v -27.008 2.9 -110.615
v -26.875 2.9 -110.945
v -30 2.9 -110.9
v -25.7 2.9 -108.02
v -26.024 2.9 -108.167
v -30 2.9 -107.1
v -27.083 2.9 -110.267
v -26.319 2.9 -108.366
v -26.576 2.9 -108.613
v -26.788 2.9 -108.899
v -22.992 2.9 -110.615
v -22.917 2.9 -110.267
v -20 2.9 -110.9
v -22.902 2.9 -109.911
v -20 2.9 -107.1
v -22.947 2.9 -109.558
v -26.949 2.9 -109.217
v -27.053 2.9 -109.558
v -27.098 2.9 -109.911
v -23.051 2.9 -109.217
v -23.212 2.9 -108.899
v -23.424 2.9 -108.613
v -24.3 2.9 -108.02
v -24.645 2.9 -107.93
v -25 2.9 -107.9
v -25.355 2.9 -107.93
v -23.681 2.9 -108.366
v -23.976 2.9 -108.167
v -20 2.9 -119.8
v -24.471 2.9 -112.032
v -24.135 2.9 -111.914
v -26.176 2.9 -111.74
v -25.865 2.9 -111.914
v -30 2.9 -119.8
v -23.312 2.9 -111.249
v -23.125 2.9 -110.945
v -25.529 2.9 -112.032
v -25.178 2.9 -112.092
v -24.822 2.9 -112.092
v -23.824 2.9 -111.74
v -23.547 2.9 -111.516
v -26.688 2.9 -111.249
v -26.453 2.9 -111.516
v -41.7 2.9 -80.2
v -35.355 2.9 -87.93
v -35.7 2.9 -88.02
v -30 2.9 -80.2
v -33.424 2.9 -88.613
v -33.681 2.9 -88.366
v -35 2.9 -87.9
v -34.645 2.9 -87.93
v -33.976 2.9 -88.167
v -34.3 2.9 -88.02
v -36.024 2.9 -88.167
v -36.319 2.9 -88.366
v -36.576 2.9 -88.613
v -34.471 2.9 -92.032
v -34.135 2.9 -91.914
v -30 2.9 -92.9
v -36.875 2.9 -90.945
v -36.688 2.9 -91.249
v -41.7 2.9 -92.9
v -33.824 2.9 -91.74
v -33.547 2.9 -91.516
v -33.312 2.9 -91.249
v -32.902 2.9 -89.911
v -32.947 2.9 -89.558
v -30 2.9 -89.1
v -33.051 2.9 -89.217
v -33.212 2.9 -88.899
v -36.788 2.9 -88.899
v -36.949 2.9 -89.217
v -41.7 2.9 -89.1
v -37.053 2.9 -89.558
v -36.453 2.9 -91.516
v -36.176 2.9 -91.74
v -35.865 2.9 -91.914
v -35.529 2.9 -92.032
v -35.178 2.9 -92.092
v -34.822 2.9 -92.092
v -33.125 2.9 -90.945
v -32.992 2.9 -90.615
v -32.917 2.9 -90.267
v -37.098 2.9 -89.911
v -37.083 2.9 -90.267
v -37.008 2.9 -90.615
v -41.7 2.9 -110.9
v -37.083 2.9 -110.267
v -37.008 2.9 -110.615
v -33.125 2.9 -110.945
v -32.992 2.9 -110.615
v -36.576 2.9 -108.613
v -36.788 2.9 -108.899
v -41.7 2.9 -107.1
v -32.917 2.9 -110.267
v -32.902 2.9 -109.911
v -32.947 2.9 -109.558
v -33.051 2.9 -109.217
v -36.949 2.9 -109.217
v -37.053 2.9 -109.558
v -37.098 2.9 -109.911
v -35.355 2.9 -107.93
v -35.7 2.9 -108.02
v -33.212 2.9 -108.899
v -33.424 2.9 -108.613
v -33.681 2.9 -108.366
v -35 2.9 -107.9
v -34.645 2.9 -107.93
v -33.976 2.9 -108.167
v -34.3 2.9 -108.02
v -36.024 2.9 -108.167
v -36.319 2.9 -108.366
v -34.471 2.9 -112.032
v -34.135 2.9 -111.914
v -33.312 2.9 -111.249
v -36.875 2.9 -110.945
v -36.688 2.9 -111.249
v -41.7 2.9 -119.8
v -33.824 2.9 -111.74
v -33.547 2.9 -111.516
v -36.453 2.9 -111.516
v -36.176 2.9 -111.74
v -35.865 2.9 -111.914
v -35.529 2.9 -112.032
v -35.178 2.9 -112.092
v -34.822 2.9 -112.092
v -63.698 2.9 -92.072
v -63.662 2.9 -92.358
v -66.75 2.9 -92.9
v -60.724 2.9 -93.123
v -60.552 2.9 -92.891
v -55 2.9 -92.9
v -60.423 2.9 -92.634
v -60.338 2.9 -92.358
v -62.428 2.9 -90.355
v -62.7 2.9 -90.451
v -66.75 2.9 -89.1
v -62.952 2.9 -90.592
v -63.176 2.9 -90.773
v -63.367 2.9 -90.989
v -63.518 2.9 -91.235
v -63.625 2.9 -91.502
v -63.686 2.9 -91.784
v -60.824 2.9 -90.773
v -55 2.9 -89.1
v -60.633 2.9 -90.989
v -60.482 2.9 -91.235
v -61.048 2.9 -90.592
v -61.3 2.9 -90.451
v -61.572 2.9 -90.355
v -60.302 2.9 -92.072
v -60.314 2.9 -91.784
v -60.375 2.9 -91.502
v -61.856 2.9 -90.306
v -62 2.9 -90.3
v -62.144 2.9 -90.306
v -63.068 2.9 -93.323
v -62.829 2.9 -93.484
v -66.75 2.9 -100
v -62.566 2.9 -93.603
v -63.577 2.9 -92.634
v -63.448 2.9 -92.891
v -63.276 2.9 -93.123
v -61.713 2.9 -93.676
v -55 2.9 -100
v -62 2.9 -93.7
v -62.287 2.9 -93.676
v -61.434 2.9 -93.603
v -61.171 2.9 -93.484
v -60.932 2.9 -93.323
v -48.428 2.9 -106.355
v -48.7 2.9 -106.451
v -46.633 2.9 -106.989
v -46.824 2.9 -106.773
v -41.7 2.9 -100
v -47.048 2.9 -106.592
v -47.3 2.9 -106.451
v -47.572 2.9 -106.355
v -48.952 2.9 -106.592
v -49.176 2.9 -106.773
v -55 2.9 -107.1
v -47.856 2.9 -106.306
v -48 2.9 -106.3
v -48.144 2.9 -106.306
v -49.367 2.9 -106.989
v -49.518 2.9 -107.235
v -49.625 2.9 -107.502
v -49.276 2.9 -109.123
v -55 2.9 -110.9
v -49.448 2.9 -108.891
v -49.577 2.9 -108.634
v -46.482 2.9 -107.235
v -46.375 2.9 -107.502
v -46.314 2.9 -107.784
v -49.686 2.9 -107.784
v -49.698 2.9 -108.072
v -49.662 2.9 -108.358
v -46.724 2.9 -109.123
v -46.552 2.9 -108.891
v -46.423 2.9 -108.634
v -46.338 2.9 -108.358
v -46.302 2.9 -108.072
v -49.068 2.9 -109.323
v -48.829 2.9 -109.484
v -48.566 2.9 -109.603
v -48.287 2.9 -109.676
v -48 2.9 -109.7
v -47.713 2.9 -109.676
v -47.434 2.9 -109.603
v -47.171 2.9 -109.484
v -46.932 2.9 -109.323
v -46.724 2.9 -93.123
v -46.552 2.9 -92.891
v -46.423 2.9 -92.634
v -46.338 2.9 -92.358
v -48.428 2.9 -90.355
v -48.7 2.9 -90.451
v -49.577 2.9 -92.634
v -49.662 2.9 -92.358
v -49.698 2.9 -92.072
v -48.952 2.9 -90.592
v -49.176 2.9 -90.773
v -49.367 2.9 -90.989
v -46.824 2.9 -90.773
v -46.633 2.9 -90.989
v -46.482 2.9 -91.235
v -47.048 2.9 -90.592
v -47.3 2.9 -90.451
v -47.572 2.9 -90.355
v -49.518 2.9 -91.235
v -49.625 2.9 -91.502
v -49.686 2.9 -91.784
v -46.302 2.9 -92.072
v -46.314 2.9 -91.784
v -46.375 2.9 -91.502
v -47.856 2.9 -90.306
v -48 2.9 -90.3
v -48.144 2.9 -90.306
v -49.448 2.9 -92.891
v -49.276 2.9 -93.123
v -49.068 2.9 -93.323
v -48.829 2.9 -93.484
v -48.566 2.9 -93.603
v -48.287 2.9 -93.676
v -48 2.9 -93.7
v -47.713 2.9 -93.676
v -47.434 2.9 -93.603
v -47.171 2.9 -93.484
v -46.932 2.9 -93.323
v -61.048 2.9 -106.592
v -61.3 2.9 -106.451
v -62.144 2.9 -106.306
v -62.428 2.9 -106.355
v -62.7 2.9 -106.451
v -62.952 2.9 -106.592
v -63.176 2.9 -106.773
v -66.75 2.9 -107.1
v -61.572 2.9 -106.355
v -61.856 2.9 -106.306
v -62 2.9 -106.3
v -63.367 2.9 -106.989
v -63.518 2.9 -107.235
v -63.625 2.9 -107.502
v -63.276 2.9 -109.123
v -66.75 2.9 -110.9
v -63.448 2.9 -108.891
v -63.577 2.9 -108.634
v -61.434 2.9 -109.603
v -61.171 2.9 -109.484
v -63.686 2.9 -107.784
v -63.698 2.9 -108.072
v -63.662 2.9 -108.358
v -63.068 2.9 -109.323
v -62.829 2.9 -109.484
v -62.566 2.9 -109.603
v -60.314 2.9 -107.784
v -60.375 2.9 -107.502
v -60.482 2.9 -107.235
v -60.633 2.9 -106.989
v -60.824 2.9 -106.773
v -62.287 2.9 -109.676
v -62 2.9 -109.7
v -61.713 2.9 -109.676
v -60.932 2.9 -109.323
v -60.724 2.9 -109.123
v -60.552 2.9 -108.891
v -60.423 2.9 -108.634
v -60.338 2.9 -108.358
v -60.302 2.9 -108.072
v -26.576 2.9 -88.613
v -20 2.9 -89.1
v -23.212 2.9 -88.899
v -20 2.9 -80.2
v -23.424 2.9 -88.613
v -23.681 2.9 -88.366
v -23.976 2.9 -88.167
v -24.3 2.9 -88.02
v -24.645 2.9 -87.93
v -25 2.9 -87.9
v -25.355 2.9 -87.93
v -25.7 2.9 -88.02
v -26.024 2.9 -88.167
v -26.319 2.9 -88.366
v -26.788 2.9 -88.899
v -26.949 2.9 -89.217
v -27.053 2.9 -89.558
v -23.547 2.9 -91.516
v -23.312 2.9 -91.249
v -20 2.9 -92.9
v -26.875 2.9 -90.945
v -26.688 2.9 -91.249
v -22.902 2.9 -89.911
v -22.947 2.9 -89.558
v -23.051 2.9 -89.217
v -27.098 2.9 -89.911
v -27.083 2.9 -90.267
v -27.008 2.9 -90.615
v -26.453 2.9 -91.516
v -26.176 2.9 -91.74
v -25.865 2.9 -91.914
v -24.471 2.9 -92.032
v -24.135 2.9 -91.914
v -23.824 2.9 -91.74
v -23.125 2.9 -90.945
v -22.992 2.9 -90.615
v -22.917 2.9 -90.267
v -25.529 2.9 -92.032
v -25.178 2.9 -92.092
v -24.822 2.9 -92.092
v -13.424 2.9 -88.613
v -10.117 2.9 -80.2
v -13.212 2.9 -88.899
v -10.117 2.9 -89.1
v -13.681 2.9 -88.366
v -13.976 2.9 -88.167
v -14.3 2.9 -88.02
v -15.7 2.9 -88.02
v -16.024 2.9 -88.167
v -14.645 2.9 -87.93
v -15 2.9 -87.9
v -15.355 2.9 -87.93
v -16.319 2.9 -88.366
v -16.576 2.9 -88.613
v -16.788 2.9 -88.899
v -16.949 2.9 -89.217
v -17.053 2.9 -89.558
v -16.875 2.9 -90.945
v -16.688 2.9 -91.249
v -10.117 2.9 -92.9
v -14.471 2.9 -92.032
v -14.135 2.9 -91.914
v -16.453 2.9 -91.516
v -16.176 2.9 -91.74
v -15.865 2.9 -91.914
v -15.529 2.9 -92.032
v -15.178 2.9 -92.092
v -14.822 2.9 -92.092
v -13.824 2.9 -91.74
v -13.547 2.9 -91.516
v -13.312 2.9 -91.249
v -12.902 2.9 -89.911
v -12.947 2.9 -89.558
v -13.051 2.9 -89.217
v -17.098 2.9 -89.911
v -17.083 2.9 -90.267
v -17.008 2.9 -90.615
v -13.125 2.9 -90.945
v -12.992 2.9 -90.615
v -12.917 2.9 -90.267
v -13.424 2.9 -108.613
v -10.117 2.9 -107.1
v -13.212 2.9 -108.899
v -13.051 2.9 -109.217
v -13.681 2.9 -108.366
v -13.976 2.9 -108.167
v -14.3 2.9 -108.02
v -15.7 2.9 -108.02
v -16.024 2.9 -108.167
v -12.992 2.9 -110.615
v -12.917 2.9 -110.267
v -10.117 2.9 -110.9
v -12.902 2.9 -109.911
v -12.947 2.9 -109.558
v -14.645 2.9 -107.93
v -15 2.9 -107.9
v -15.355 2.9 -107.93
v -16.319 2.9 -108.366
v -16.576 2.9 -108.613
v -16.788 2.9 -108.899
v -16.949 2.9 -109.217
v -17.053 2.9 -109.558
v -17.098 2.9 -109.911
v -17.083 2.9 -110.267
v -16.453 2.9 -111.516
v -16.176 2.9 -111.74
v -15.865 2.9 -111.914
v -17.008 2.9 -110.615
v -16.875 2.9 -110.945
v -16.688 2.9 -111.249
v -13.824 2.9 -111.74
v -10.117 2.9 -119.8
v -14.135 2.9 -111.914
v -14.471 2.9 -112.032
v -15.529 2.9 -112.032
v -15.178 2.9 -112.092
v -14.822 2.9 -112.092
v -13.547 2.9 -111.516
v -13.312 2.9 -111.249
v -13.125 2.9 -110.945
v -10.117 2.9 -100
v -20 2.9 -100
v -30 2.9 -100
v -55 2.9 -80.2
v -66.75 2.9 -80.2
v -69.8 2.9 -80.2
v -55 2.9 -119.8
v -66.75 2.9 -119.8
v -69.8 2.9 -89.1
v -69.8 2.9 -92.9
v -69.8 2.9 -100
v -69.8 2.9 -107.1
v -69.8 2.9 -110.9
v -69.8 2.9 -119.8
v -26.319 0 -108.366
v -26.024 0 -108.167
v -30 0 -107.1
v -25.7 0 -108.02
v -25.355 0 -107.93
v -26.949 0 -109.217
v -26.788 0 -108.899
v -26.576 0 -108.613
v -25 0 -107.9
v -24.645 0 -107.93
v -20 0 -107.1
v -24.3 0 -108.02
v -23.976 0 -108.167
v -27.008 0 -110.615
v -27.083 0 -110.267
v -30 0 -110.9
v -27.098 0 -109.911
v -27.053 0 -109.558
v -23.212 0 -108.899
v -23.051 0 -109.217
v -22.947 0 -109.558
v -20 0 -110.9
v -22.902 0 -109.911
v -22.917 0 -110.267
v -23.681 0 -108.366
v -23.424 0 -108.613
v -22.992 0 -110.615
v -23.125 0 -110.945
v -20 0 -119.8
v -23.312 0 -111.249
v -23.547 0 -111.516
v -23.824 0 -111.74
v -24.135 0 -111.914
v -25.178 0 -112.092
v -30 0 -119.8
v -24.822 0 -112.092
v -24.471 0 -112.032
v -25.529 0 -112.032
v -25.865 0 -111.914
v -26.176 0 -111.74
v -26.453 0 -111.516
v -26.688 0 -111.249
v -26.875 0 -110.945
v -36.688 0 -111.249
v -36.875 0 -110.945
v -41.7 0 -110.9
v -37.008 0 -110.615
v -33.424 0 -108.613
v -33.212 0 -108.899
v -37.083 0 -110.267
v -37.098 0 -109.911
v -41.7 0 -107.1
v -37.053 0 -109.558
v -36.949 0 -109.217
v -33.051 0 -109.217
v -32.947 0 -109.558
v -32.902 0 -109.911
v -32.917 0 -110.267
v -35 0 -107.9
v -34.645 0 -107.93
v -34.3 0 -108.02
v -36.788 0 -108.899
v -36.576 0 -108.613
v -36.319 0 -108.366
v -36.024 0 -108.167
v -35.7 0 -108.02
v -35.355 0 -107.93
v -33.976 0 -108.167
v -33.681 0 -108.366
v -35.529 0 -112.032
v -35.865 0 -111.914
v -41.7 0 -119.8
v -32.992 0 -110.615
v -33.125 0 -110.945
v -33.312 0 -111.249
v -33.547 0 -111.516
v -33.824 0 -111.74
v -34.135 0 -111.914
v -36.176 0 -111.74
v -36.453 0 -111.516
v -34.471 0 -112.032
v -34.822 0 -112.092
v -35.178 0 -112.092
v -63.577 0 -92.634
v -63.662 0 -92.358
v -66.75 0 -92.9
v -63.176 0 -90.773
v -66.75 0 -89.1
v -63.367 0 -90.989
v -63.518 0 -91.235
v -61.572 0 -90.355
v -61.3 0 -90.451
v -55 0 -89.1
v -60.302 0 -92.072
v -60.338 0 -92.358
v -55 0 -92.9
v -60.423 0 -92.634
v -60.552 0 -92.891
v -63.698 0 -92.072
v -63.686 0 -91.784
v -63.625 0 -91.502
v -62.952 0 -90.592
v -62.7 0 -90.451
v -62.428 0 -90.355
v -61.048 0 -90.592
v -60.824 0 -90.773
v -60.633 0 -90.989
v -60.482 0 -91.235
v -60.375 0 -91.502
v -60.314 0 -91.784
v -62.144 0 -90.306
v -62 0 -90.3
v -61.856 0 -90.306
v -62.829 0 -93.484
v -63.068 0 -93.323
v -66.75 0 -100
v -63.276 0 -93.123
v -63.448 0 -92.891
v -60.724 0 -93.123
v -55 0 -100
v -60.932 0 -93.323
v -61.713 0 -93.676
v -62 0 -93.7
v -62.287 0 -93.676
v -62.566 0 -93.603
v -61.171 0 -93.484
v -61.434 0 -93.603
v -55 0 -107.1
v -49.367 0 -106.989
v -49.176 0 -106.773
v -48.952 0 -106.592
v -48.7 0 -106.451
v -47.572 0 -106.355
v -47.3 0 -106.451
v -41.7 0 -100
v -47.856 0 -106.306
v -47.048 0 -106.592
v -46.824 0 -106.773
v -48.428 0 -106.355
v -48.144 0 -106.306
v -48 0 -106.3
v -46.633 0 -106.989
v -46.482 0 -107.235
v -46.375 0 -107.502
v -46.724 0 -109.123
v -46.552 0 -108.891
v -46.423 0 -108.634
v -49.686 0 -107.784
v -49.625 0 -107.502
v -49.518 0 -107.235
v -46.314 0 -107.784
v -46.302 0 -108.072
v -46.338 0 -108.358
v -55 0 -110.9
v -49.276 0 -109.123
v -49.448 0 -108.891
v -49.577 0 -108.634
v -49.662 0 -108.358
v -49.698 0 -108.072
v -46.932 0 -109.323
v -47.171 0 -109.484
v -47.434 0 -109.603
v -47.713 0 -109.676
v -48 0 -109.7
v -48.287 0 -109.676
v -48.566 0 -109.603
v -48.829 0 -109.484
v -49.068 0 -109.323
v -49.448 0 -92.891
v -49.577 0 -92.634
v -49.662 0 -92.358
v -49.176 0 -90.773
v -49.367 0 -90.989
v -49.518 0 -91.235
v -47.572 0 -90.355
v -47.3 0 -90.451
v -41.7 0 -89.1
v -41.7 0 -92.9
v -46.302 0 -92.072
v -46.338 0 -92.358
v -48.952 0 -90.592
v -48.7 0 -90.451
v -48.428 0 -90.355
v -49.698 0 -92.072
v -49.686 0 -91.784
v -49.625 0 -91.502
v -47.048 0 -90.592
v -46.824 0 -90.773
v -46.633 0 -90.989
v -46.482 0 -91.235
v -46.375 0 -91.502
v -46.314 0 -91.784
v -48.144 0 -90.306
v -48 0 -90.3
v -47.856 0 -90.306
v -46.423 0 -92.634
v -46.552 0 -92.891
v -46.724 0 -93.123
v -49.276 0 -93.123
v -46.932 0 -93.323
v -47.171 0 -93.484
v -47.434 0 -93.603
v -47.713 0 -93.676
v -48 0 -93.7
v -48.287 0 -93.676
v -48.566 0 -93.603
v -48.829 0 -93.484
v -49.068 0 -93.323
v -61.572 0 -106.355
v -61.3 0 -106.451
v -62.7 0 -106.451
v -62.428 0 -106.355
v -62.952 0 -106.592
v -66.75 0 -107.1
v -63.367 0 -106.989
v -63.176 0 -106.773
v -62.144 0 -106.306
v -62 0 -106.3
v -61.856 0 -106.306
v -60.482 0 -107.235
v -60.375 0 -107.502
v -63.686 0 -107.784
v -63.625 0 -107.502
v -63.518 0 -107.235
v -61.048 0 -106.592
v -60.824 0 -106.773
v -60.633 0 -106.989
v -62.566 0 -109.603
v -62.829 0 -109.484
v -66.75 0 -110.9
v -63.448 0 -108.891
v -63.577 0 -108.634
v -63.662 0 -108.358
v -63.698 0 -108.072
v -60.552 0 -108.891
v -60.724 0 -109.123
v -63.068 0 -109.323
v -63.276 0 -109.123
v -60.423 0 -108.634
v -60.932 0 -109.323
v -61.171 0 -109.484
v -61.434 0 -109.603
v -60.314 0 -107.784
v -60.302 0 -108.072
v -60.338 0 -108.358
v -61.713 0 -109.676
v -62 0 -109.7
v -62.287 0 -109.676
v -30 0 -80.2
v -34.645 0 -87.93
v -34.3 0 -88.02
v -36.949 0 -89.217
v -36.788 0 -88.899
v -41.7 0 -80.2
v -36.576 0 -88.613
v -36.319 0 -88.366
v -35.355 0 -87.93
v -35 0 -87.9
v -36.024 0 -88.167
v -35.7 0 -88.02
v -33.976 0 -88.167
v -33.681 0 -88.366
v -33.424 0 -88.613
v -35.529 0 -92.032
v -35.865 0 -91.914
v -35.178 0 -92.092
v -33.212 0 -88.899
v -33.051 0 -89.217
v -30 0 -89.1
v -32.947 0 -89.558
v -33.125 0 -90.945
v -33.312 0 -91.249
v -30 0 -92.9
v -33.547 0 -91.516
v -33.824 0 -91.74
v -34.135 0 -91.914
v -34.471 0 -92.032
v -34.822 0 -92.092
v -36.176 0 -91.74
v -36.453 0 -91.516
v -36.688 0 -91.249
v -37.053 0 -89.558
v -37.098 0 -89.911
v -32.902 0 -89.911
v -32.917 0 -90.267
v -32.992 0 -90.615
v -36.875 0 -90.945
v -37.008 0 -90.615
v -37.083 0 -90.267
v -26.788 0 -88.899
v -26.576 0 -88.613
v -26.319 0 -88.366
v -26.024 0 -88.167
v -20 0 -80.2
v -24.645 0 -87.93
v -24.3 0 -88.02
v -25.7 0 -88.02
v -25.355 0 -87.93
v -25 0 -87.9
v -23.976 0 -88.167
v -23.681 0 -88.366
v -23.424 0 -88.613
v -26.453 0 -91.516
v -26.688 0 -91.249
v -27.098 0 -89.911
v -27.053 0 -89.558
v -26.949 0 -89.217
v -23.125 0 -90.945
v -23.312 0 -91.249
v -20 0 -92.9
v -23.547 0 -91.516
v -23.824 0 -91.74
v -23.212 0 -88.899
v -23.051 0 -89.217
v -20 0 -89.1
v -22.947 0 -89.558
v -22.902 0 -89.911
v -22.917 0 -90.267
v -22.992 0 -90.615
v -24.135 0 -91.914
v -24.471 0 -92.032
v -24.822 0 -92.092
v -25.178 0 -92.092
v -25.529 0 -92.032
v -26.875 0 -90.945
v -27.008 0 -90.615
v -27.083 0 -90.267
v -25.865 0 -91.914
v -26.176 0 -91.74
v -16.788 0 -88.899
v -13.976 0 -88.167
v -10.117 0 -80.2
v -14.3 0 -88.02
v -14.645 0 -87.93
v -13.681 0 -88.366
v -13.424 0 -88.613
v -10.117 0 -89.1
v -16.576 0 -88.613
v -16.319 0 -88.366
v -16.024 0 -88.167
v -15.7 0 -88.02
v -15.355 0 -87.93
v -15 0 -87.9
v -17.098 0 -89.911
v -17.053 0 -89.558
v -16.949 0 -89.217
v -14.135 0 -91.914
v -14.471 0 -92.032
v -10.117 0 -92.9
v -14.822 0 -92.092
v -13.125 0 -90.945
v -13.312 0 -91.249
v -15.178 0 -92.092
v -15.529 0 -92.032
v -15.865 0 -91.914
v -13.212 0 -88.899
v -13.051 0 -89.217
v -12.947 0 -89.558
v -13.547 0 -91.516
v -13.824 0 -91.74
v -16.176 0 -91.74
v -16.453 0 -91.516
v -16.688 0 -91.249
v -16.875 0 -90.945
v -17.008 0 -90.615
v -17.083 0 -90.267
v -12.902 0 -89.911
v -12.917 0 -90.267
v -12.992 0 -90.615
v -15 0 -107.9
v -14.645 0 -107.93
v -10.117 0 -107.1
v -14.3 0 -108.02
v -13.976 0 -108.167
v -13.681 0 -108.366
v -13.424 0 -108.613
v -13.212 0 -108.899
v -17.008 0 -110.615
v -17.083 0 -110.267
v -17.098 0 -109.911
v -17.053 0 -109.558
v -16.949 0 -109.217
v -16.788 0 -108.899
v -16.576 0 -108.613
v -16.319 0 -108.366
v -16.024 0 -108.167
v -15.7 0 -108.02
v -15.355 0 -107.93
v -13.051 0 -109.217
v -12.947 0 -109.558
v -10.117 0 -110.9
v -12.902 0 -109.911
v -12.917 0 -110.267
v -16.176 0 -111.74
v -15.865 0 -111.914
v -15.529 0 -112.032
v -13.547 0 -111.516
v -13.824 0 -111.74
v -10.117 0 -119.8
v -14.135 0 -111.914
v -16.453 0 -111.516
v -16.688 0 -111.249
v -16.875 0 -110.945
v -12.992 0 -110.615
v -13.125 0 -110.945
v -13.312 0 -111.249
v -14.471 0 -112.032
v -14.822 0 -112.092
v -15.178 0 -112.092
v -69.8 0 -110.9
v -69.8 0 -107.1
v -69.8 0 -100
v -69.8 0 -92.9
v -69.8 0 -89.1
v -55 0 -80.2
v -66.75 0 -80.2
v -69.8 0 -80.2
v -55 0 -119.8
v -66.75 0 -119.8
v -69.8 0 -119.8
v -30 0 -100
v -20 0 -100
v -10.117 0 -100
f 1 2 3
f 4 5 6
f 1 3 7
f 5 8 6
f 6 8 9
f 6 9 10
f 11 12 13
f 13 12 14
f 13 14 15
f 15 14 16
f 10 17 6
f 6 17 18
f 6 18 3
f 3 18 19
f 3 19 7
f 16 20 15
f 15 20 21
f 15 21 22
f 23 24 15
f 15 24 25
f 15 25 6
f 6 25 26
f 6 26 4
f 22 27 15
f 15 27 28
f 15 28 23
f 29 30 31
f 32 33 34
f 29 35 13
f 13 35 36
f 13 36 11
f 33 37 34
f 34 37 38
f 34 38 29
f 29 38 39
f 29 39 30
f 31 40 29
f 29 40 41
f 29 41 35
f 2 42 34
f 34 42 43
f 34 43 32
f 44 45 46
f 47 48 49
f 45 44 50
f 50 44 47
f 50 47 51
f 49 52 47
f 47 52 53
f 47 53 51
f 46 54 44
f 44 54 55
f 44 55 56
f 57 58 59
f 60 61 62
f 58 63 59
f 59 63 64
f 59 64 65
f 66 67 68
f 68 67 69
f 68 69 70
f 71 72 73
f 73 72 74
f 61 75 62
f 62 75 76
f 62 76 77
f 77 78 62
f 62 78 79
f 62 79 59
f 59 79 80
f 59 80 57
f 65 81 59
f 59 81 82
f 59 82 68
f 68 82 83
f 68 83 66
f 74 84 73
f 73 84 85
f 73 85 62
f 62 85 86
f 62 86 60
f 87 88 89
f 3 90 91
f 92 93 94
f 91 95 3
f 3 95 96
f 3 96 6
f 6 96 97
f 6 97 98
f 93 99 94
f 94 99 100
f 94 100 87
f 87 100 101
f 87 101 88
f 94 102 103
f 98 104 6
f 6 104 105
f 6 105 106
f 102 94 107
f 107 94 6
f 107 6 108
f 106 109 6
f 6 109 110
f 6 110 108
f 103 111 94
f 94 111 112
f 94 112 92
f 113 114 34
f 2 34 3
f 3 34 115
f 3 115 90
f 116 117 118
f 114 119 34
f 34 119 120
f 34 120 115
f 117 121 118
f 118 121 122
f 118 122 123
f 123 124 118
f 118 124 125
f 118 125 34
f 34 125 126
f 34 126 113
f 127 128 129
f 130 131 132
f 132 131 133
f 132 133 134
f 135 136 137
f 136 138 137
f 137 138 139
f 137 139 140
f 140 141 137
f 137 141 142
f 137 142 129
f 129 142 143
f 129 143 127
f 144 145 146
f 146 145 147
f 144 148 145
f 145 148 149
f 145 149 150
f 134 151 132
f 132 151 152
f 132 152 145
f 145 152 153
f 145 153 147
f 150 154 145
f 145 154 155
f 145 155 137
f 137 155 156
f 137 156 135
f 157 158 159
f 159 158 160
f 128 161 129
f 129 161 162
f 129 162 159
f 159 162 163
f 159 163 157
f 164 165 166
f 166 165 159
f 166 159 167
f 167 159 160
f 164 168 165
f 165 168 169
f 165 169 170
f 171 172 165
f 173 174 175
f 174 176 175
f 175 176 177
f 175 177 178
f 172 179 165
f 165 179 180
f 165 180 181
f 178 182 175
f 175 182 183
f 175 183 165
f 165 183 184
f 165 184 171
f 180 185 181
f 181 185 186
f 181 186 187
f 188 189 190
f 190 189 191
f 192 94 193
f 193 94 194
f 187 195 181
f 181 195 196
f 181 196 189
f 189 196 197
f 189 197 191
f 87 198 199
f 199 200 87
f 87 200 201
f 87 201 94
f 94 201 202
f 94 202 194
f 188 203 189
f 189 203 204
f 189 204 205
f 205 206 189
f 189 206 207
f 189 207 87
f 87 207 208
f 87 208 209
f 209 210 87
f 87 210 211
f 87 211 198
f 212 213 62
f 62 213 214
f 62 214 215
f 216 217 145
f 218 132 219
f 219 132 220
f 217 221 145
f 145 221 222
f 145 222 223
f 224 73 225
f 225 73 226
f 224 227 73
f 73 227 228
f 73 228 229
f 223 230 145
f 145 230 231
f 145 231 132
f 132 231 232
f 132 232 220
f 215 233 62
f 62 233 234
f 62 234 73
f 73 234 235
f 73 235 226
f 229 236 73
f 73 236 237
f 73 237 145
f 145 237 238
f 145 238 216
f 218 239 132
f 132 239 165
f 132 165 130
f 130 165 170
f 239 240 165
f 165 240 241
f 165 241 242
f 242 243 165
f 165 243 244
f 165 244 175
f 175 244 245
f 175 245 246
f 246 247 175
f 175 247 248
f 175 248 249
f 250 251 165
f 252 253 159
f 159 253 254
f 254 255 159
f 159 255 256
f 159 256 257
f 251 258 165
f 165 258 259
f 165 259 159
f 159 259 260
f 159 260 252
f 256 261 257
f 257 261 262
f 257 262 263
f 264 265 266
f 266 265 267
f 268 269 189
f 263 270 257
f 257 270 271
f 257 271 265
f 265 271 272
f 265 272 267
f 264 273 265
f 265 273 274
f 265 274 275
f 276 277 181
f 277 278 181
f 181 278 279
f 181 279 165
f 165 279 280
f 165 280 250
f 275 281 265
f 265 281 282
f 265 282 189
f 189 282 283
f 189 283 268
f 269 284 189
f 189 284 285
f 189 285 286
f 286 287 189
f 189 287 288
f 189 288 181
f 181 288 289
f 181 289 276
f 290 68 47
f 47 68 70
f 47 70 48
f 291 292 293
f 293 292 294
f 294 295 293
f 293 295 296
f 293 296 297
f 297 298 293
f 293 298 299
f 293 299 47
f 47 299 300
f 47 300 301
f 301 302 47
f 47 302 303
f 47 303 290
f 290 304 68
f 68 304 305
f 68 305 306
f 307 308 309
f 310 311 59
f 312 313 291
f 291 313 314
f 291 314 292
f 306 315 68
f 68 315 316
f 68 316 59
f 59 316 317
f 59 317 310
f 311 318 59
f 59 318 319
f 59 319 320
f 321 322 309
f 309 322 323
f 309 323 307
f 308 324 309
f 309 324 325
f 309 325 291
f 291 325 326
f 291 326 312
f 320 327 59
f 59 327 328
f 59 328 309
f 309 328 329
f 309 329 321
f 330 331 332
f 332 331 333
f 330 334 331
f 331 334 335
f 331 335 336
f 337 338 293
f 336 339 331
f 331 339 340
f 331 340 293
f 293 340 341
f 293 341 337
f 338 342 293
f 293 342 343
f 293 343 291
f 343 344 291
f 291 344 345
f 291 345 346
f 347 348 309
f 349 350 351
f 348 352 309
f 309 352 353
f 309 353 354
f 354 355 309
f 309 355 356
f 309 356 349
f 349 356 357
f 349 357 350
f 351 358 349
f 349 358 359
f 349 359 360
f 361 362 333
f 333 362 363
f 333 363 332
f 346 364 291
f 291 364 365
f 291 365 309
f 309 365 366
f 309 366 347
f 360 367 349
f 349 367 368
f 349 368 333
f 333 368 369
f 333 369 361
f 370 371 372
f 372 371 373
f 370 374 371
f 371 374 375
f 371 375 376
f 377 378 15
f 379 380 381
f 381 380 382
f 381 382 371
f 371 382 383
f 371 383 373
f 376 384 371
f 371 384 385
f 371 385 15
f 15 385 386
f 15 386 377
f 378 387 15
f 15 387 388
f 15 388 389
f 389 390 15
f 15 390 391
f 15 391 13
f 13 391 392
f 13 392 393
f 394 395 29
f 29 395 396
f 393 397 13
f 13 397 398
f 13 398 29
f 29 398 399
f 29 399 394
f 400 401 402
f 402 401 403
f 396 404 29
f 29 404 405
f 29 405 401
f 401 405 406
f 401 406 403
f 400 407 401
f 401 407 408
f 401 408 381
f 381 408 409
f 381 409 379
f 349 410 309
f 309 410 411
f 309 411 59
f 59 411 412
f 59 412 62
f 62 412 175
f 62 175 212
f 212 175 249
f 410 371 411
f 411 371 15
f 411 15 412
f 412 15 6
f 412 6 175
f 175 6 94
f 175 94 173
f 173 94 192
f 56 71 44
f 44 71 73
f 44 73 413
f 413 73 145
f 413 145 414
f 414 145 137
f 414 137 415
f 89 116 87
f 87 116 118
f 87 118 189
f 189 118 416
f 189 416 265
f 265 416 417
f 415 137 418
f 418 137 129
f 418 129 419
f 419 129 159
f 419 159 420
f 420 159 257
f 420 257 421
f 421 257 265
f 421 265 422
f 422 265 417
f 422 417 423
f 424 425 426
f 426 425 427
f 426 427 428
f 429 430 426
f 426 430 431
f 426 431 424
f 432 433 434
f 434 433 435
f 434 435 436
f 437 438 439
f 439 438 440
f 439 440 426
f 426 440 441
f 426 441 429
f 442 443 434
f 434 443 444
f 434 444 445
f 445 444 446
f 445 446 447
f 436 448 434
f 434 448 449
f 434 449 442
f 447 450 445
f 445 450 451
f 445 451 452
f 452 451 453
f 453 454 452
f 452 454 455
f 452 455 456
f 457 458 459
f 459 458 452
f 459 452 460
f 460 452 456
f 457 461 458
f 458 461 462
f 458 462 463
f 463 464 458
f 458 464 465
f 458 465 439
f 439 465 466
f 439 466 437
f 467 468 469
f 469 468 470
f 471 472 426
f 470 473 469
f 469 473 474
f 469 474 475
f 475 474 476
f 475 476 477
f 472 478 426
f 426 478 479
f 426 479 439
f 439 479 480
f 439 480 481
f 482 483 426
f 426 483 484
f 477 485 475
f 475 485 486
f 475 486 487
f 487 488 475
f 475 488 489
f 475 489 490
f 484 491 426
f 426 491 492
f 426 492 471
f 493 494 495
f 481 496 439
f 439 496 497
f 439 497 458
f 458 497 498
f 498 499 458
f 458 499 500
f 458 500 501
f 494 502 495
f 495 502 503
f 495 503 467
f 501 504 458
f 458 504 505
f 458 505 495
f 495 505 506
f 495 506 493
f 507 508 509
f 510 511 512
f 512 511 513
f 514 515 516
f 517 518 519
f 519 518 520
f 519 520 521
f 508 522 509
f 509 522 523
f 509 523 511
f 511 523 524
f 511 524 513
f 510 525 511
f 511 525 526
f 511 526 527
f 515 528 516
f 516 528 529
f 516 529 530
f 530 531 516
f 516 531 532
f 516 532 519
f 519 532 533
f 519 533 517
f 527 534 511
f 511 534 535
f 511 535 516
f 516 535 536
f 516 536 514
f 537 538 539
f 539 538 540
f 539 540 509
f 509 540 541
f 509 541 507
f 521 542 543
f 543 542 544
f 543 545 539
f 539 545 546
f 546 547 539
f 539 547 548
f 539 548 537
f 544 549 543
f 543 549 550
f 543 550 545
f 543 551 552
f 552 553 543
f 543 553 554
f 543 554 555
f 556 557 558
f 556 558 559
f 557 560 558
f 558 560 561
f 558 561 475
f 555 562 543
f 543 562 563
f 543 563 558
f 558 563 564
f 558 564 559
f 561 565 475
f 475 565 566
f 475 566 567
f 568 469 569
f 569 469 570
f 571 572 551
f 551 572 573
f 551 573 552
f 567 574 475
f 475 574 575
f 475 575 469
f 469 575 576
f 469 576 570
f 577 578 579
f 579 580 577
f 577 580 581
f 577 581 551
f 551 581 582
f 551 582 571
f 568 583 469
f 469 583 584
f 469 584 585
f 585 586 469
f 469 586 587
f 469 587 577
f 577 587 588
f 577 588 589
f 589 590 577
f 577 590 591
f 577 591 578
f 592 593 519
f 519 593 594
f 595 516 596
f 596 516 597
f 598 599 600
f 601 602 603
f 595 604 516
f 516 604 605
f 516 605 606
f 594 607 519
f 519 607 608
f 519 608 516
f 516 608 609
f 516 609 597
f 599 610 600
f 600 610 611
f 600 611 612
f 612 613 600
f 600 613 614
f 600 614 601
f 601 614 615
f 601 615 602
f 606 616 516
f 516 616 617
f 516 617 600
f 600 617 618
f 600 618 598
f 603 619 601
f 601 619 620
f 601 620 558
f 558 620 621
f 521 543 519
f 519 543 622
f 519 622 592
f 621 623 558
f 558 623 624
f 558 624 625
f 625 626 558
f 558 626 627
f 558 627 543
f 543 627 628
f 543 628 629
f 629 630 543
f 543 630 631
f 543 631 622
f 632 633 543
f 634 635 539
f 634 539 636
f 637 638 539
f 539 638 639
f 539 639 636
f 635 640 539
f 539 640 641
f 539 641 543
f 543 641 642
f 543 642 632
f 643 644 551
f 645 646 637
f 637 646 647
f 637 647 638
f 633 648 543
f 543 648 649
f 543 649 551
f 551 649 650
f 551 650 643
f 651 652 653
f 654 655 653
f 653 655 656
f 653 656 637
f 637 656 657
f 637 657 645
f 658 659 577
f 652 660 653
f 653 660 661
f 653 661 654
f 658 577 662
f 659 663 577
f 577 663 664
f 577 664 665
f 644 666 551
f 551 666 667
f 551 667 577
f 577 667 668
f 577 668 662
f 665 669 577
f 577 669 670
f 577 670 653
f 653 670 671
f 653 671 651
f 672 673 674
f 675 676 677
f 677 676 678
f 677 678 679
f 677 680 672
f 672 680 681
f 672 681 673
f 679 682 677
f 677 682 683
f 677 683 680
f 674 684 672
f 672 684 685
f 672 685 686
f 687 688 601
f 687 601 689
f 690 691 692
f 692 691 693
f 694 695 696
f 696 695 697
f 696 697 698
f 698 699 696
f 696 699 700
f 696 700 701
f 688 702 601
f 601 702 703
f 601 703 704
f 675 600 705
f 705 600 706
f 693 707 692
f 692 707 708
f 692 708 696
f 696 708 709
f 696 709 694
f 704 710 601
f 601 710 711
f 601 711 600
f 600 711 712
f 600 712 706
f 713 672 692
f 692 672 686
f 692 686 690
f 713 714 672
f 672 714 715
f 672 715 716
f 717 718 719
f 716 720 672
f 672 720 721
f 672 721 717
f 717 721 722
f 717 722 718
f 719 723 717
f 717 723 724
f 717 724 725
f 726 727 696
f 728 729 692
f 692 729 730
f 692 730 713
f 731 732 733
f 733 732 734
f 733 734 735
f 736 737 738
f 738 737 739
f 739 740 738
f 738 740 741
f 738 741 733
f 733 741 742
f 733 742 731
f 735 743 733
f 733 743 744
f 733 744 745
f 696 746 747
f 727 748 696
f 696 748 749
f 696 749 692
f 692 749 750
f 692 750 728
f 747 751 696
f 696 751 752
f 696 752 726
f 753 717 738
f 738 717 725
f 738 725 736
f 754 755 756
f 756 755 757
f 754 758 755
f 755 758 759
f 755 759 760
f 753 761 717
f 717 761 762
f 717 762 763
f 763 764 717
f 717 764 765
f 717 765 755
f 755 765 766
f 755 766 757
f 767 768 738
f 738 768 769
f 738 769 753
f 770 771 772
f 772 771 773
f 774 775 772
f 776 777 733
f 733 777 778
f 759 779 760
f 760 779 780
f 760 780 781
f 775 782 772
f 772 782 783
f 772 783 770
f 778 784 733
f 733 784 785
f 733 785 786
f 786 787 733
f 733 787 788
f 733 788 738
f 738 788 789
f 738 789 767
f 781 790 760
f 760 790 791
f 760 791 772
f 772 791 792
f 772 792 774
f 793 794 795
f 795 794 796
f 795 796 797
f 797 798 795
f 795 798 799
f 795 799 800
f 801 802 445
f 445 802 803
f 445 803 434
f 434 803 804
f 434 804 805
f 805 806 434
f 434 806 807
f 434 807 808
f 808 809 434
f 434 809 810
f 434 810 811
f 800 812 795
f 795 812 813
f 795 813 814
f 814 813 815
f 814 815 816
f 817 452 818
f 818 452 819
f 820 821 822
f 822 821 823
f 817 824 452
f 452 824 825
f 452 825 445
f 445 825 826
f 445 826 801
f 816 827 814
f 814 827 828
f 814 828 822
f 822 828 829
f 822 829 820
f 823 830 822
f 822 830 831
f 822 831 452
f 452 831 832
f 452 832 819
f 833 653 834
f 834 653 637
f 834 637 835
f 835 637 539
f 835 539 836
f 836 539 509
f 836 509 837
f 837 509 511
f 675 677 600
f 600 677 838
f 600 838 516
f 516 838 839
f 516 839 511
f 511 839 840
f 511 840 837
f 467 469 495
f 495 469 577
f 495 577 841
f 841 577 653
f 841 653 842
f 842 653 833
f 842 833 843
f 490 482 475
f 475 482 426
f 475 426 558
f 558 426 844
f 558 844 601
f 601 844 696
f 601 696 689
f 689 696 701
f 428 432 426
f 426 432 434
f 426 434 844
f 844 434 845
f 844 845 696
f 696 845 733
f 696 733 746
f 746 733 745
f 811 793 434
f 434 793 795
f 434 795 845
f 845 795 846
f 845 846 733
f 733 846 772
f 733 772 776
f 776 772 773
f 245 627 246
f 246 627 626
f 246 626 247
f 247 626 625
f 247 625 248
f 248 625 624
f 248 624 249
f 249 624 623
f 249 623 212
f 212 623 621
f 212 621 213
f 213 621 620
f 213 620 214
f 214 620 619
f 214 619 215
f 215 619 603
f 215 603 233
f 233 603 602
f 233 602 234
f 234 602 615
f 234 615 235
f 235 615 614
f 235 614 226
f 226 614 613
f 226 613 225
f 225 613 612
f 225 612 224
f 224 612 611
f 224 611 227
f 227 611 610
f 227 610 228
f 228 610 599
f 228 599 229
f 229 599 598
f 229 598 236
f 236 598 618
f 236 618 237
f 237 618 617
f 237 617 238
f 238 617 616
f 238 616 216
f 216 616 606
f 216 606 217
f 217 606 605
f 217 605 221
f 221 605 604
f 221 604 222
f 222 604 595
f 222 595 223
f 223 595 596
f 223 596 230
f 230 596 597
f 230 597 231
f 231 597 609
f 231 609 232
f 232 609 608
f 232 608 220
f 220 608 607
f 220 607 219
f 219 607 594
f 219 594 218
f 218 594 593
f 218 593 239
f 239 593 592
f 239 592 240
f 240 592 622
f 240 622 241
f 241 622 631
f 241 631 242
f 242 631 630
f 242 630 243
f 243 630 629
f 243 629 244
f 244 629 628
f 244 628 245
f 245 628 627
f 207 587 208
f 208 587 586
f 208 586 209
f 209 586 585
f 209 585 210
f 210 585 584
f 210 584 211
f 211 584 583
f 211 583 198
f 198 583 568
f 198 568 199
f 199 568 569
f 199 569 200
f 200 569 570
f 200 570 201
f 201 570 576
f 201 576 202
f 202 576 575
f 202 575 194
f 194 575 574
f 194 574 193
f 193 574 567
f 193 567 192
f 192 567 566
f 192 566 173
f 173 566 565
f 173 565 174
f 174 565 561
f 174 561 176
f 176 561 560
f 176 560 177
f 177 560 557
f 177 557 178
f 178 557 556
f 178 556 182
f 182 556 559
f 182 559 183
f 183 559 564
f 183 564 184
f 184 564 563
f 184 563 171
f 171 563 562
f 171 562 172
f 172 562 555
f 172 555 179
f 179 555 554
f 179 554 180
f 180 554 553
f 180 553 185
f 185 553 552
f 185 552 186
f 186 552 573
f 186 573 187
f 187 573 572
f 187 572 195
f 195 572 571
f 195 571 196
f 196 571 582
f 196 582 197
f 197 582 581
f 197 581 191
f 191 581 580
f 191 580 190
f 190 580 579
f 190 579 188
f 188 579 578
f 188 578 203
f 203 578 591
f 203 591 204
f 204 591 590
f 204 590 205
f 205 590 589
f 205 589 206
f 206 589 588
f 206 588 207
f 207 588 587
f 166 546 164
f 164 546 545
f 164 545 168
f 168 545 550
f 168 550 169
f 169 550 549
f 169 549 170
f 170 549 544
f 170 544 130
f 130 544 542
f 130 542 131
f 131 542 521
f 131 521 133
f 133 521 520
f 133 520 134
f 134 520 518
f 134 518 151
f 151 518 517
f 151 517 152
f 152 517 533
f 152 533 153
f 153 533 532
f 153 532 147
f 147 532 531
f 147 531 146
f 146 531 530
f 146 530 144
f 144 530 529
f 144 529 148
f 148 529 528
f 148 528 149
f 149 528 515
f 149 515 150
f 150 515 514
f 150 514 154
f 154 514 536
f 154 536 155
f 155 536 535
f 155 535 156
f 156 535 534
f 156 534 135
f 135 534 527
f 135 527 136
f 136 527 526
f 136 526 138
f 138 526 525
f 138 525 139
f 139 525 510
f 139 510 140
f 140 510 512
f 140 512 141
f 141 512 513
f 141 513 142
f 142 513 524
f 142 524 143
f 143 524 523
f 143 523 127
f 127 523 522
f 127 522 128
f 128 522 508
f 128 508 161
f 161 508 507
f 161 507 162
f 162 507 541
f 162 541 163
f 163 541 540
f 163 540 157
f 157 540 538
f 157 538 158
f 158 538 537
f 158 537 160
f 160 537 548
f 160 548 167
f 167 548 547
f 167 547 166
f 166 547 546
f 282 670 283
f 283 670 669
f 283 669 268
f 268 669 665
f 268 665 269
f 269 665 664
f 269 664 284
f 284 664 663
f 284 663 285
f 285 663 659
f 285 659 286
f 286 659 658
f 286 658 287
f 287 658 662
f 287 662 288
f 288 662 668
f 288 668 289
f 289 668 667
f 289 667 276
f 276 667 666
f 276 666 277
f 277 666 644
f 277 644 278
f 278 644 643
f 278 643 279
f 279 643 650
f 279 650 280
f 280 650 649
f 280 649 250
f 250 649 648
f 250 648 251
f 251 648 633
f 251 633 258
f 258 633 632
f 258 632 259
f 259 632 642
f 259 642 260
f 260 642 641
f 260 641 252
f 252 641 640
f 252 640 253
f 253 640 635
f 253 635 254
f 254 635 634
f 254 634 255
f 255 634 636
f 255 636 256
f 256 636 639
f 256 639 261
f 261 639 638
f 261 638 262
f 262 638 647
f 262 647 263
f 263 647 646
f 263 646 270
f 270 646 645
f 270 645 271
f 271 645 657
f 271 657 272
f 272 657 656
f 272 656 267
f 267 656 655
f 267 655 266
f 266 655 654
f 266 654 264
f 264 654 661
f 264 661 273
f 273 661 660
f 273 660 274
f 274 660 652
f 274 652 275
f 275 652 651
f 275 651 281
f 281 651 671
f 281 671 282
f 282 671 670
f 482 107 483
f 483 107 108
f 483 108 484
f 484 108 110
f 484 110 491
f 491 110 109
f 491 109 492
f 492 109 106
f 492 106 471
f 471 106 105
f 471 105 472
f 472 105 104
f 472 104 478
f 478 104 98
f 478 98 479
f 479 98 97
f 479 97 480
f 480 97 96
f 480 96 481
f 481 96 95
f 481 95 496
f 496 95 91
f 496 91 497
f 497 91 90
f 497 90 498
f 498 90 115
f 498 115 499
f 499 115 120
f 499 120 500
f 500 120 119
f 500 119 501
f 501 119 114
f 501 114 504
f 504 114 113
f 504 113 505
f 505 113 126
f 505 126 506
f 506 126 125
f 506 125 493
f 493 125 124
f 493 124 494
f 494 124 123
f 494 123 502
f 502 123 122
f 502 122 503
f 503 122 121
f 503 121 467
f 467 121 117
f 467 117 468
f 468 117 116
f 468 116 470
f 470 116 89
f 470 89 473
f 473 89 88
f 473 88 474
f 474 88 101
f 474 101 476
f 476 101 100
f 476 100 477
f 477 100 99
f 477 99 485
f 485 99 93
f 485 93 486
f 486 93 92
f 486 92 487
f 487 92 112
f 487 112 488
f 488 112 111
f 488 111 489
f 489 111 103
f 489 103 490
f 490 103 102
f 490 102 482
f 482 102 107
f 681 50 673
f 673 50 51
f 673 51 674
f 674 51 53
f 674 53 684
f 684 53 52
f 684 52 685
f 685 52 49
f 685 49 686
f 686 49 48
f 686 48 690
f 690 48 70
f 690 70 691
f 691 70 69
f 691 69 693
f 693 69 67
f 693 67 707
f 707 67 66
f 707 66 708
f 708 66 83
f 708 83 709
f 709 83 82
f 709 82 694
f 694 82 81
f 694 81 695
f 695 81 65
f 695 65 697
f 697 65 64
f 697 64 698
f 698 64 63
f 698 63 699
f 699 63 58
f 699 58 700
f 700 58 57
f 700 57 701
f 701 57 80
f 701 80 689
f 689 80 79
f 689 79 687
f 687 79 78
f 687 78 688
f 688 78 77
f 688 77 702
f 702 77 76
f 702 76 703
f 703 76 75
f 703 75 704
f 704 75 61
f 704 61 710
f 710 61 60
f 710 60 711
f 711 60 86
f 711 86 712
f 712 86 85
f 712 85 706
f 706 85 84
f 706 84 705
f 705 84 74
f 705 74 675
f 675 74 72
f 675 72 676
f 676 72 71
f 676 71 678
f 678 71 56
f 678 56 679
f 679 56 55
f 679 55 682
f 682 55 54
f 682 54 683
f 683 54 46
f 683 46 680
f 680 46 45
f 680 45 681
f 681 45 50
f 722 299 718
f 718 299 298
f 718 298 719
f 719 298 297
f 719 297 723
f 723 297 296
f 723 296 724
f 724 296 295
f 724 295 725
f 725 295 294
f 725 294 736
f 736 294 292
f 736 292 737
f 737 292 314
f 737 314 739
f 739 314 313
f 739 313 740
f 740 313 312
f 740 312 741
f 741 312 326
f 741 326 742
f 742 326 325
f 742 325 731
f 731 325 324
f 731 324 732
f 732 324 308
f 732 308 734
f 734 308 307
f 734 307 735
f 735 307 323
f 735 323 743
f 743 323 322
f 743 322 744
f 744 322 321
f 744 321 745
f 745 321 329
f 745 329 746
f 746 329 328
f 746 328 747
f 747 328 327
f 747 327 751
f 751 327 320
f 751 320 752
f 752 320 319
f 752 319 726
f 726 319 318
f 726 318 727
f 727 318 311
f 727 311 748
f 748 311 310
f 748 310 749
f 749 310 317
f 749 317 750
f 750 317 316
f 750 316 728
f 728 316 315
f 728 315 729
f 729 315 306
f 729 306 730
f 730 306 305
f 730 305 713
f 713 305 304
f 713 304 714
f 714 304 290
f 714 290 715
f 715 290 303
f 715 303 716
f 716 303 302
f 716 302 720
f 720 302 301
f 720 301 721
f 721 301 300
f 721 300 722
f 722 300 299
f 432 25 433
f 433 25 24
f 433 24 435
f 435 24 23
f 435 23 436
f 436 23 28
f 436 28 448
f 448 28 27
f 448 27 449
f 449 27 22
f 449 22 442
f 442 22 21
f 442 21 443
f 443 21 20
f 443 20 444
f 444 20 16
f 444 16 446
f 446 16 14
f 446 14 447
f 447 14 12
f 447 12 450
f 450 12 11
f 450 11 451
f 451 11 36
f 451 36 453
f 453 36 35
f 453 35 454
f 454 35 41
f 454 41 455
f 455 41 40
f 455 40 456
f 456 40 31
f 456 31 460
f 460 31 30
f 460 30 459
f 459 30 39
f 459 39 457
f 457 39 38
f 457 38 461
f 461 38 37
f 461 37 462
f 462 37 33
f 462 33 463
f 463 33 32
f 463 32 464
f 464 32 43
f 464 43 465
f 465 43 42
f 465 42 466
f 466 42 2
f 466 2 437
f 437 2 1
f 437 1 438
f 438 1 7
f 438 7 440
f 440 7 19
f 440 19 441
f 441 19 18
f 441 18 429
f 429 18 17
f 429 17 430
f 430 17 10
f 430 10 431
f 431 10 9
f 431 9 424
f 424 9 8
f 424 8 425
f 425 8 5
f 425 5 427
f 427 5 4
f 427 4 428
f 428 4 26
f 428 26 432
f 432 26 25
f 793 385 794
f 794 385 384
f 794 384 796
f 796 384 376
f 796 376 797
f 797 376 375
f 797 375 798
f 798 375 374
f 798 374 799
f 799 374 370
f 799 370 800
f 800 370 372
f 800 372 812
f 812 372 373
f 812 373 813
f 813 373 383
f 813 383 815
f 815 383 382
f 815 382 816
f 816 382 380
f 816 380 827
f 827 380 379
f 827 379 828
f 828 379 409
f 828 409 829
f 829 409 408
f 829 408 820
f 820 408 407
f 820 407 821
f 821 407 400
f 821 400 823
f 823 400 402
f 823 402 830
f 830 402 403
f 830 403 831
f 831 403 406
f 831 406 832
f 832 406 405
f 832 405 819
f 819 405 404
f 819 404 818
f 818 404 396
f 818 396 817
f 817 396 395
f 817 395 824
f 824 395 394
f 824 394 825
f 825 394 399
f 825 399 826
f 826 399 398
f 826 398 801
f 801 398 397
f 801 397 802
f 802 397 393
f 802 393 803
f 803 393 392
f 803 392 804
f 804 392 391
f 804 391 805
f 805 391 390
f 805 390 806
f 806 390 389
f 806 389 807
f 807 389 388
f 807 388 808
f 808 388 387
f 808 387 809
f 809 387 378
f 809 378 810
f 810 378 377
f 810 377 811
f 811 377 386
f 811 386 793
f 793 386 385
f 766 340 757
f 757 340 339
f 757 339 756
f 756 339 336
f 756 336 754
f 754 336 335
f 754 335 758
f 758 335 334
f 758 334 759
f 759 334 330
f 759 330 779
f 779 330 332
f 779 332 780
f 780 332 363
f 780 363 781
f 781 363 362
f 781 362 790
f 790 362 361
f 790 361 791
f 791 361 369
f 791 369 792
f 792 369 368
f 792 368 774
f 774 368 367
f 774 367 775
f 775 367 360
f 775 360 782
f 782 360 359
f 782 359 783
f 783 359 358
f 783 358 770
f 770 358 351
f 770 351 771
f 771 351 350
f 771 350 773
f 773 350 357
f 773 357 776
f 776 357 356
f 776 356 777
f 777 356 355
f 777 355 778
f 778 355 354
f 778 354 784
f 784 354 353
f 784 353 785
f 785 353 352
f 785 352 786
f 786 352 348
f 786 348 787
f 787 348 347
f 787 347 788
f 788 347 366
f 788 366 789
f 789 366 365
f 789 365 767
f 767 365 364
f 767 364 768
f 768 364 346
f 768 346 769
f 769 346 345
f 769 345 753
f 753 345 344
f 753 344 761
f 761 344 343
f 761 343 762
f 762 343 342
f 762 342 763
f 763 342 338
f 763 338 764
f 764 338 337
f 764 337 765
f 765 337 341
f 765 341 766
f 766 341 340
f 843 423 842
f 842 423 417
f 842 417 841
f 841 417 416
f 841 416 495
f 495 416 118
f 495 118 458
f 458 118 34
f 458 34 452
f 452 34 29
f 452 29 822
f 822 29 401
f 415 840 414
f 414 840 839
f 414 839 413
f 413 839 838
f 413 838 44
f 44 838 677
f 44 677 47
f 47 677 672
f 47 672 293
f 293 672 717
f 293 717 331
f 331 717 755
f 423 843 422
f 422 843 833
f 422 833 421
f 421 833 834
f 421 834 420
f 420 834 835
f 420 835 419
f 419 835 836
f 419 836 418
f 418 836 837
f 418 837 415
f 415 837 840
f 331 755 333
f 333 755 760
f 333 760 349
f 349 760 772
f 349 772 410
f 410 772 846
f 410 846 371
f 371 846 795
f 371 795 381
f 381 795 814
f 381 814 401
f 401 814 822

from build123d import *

# Parameters (mm, degrees)
SKETCH_1_R          = 1.7
SKETCH_1_W          = 5
SKETCH_1_H          = 13
SKETCH_1_H_2        = 2
EXTRUDE_3_DEPTH     = 2.9
SKETCH_3_R          = 2.1
CUT_EXTRUDE_3_DEPTH = 2.9
SKETCH_4_W          = 20
SKETCH_4_H          = 40
SKETCH_4_R          = 2.1
EXTRUDE_4_DEPTH     = 2.9
SKETCH_5_W          = 70
SKETCH_5_H          = 40
SKETCH_5_W_2        = 69.6
SKETCH_5_H_2        = 39.6
CUT_EXTRUDE_4_DEPTH = 2.9
SKETCH_6_W          = 9.917430794
SKETCH_6_H          = 39.6
SKETCH_6_R          = 2.1
CUT_EXTRUDE_5_DEPTH = 10


with BuildPart() as part:
    # 草图1 → 凸台-拉伸3 (new body)
    # profile 1 of 10: a face of its own
    with BuildSketch(Plane(origin=(0, 0, 0), x_dir=(1, 0, 0), z_dir=(0, 1, 0))):
        with BuildLine():
            Line((-40, 113), (-70, 113))
            Line((-70, 113), (-70, 108))
            Line((-70, 108), (-70, 92))
            Line((-70, 92), (-63.7, 92))
            ThreePointArc((-63.7, 92), (-62, 93.7), (-60.3, 92))
            ThreePointArc((-60.3, 92), (-60.797918472, 90.797918472), (-62, 90.3))
            Line((-62, 90.3), (-62, 87))
            Line((-62, 87), (-48, 87))
            Line((-48, 87), (-48, 90.3))
            ThreePointArc((-48, 90.3), (-49.202081528, 93.202081528), (-46.3, 92))
            Line((-46.3, 92), (-40, 92))
            Line((-40, 92), (-40, 113))
        make_face()
        with Locations(Location((-62, 108, 0), (0, 0, 270))):
            Circle(SKETCH_1_R, mode=Mode.SUBTRACT)
        with Locations(Location((-48, 108, 0), (0, 0, 270))):
            Circle(SKETCH_1_R, mode=Mode.SUBTRACT)
    # profile 2 of 10: a face of its own
    with BuildSketch(Plane(origin=(0, 0, 0), x_dir=(1, 0, 0), z_dir=(0, 1, 0))):
        with BuildLine():
            Line((-70, 92), (-70, 87))
            Line((-70, 87), (-62, 87))
            Line((-62, 87), (-62, 90.3))
            ThreePointArc((-62, 90.3), (-63.202081528, 90.797918472), (-63.7, 92))
            Line((-63.7, 92), (-70, 92))
        make_face()
    # profile 3 of 10: a face of its own
    with BuildSketch(Plane(origin=(0, 0, 0), x_dir=(1, 0, 0), z_dir=(0, 1, 0))):
        with BuildLine():
            Line((-48, 90.3), (-48, 87))
            Line((-48, 87), (-40, 87))
            Line((-40, 87), (-40, 92))
            Line((-40, 92), (-46.3, 92))
            ThreePointArc((-46.3, 92), (-46.797918472, 90.797918472), (-48, 90.3))
        make_face()
    # profile 4 of 10: a face of its own
    with BuildSketch(Plane(origin=(0, 0, 0), x_dir=(1, 0, 0), z_dir=(0, 1, 0))):
        Polygon((-70, 87), (-70, 80), (-20, 80), (-20, 85), (-25, 85), (-25, 87), (-40, 87), (-48, 87), (-62, 87), align=None)
    # profile 5 of 10: a face of its own
    with BuildSketch(Plane(origin=(0, 0, 0), x_dir=(1, 0, 0), z_dir=(0, 1, 0))):
        Polygon((-25, 113), (-40, 113), (-40, 92), (-40, 87), (-25, 87), (-25, 100), align=None)
    # profile 6 of 10: a face of its own
    with BuildSketch(Plane(origin=(0, 0, 0), x_dir=(1, 0, 0), z_dir=(0, 1, 0))):
        with Locations((-22.5, 93.5)):
            Rectangle(SKETCH_1_W, SKETCH_1_H)
    # profile 7 of 10: a face of its own
    with BuildSketch(Plane(origin=(0, 0, 0), x_dir=(1, 0, 0), z_dir=(0, 1, 0))):
        with Locations((-22.5, 106.5)):
            Rectangle(SKETCH_1_W, SKETCH_1_H)
    # profile 8 of 10: a face of its own
    with BuildSketch(Plane(origin=(0, 0, 0), x_dir=(1, 0, 0), z_dir=(0, 1, 0))):
        with Locations((-22.5, 86)):
            Rectangle(SKETCH_1_W, SKETCH_1_H_2)
    # profile 9 of 10: a face of its own
    with BuildSketch(Plane(origin=(0, 0, 0), x_dir=(1, 0, 0), z_dir=(0, 1, 0))):
        Polygon((-20, 120), (-70, 120), (-70, 113), (-40, 113), (-25, 113), (-25, 115), (-20, 115), align=None)
    # profile 10 of 10: a face of its own
    with BuildSketch(Plane(origin=(0, 0, 0), x_dir=(1, 0, 0), z_dir=(0, 1, 0))):
        with Locations((-22.5, 114)):
            Rectangle(SKETCH_1_W, SKETCH_1_H_2)
    extrude(amount=EXTRUDE_3_DEPTH)

    # 草图3 → 切除-拉伸3 (cut)
    with BuildSketch(Plane(origin=(0, 2.9, 0), x_dir=(1, 0, 0), z_dir=(0, 1, 0))):
        with Locations(Location((-25, 110, 0), (0, 0, 270))):
            Circle(SKETCH_3_R)
        with Locations(Location((-25, 90, 0), (0, 0, 270))):
            Circle(SKETCH_3_R)
        with Locations(Location((-35, 90, 0), (0, 0, 270))):
            Circle(SKETCH_3_R)
        with Locations(Location((-35, 110, 0), (0, 0, 270))):
            Circle(SKETCH_3_R)
    extrude(amount=-CUT_EXTRUDE_3_DEPTH, mode=Mode.SUBTRACT)

    # 草图4 → 凸台-拉伸4 (add)
    with BuildSketch(Plane(origin=(0, 2.9, 0), x_dir=(1, 0, 0), z_dir=(0, 1, 0))):
        with Locations((-10, 100)):
            Rectangle(SKETCH_4_W, SKETCH_4_H)
        with Locations(Location((-15, 110, 0), (0, 0, 270))):
            Circle(SKETCH_4_R, mode=Mode.SUBTRACT)
        with Locations(Location((-15, 90, 0), (0, 0, 270))):
            Circle(SKETCH_4_R, mode=Mode.SUBTRACT)
        with Locations(Location((-5, 110, 0), (0, 0, 270))):
            Circle(SKETCH_4_R, mode=Mode.SUBTRACT)
        with Locations(Location((-5, 90, 0), (0, 0, 270))):
            Circle(SKETCH_4_R, mode=Mode.SUBTRACT)
    extrude(amount=-EXTRUDE_4_DEPTH)

    # 草图5 → 切除-拉伸4 (cut)
    with BuildSketch(Plane(origin=(0, 2.9, 0), x_dir=(1, 0, 0), z_dir=(0, 1, 0))):
        with Locations((-35, 100)):
            Rectangle(SKETCH_5_W, SKETCH_5_H)
        with Locations((-35, 100)):
            Rectangle(SKETCH_5_W_2, SKETCH_5_H_2, mode=Mode.SUBTRACT)
    extrude(amount=-CUT_EXTRUDE_4_DEPTH, mode=Mode.SUBTRACT)

    # 草图6 → 切除-拉伸5 (cut)
    with BuildSketch(Plane(origin=(0, 2.9, 0), x_dir=(1, 0, 0), z_dir=(0, 1, 0))):
        with Locations((-5.158715397, 100)):
            Rectangle(SKETCH_6_W, SKETCH_6_H)
        with Locations((-5, 90)):
            Circle(SKETCH_6_R, mode=Mode.SUBTRACT)
        with Locations((-5, 110)):
            Circle(SKETCH_6_R, mode=Mode.SUBTRACT)
    extrude(amount=-CUT_EXTRUDE_5_DEPTH, mode=Mode.SUBTRACT)


solid = part.part
